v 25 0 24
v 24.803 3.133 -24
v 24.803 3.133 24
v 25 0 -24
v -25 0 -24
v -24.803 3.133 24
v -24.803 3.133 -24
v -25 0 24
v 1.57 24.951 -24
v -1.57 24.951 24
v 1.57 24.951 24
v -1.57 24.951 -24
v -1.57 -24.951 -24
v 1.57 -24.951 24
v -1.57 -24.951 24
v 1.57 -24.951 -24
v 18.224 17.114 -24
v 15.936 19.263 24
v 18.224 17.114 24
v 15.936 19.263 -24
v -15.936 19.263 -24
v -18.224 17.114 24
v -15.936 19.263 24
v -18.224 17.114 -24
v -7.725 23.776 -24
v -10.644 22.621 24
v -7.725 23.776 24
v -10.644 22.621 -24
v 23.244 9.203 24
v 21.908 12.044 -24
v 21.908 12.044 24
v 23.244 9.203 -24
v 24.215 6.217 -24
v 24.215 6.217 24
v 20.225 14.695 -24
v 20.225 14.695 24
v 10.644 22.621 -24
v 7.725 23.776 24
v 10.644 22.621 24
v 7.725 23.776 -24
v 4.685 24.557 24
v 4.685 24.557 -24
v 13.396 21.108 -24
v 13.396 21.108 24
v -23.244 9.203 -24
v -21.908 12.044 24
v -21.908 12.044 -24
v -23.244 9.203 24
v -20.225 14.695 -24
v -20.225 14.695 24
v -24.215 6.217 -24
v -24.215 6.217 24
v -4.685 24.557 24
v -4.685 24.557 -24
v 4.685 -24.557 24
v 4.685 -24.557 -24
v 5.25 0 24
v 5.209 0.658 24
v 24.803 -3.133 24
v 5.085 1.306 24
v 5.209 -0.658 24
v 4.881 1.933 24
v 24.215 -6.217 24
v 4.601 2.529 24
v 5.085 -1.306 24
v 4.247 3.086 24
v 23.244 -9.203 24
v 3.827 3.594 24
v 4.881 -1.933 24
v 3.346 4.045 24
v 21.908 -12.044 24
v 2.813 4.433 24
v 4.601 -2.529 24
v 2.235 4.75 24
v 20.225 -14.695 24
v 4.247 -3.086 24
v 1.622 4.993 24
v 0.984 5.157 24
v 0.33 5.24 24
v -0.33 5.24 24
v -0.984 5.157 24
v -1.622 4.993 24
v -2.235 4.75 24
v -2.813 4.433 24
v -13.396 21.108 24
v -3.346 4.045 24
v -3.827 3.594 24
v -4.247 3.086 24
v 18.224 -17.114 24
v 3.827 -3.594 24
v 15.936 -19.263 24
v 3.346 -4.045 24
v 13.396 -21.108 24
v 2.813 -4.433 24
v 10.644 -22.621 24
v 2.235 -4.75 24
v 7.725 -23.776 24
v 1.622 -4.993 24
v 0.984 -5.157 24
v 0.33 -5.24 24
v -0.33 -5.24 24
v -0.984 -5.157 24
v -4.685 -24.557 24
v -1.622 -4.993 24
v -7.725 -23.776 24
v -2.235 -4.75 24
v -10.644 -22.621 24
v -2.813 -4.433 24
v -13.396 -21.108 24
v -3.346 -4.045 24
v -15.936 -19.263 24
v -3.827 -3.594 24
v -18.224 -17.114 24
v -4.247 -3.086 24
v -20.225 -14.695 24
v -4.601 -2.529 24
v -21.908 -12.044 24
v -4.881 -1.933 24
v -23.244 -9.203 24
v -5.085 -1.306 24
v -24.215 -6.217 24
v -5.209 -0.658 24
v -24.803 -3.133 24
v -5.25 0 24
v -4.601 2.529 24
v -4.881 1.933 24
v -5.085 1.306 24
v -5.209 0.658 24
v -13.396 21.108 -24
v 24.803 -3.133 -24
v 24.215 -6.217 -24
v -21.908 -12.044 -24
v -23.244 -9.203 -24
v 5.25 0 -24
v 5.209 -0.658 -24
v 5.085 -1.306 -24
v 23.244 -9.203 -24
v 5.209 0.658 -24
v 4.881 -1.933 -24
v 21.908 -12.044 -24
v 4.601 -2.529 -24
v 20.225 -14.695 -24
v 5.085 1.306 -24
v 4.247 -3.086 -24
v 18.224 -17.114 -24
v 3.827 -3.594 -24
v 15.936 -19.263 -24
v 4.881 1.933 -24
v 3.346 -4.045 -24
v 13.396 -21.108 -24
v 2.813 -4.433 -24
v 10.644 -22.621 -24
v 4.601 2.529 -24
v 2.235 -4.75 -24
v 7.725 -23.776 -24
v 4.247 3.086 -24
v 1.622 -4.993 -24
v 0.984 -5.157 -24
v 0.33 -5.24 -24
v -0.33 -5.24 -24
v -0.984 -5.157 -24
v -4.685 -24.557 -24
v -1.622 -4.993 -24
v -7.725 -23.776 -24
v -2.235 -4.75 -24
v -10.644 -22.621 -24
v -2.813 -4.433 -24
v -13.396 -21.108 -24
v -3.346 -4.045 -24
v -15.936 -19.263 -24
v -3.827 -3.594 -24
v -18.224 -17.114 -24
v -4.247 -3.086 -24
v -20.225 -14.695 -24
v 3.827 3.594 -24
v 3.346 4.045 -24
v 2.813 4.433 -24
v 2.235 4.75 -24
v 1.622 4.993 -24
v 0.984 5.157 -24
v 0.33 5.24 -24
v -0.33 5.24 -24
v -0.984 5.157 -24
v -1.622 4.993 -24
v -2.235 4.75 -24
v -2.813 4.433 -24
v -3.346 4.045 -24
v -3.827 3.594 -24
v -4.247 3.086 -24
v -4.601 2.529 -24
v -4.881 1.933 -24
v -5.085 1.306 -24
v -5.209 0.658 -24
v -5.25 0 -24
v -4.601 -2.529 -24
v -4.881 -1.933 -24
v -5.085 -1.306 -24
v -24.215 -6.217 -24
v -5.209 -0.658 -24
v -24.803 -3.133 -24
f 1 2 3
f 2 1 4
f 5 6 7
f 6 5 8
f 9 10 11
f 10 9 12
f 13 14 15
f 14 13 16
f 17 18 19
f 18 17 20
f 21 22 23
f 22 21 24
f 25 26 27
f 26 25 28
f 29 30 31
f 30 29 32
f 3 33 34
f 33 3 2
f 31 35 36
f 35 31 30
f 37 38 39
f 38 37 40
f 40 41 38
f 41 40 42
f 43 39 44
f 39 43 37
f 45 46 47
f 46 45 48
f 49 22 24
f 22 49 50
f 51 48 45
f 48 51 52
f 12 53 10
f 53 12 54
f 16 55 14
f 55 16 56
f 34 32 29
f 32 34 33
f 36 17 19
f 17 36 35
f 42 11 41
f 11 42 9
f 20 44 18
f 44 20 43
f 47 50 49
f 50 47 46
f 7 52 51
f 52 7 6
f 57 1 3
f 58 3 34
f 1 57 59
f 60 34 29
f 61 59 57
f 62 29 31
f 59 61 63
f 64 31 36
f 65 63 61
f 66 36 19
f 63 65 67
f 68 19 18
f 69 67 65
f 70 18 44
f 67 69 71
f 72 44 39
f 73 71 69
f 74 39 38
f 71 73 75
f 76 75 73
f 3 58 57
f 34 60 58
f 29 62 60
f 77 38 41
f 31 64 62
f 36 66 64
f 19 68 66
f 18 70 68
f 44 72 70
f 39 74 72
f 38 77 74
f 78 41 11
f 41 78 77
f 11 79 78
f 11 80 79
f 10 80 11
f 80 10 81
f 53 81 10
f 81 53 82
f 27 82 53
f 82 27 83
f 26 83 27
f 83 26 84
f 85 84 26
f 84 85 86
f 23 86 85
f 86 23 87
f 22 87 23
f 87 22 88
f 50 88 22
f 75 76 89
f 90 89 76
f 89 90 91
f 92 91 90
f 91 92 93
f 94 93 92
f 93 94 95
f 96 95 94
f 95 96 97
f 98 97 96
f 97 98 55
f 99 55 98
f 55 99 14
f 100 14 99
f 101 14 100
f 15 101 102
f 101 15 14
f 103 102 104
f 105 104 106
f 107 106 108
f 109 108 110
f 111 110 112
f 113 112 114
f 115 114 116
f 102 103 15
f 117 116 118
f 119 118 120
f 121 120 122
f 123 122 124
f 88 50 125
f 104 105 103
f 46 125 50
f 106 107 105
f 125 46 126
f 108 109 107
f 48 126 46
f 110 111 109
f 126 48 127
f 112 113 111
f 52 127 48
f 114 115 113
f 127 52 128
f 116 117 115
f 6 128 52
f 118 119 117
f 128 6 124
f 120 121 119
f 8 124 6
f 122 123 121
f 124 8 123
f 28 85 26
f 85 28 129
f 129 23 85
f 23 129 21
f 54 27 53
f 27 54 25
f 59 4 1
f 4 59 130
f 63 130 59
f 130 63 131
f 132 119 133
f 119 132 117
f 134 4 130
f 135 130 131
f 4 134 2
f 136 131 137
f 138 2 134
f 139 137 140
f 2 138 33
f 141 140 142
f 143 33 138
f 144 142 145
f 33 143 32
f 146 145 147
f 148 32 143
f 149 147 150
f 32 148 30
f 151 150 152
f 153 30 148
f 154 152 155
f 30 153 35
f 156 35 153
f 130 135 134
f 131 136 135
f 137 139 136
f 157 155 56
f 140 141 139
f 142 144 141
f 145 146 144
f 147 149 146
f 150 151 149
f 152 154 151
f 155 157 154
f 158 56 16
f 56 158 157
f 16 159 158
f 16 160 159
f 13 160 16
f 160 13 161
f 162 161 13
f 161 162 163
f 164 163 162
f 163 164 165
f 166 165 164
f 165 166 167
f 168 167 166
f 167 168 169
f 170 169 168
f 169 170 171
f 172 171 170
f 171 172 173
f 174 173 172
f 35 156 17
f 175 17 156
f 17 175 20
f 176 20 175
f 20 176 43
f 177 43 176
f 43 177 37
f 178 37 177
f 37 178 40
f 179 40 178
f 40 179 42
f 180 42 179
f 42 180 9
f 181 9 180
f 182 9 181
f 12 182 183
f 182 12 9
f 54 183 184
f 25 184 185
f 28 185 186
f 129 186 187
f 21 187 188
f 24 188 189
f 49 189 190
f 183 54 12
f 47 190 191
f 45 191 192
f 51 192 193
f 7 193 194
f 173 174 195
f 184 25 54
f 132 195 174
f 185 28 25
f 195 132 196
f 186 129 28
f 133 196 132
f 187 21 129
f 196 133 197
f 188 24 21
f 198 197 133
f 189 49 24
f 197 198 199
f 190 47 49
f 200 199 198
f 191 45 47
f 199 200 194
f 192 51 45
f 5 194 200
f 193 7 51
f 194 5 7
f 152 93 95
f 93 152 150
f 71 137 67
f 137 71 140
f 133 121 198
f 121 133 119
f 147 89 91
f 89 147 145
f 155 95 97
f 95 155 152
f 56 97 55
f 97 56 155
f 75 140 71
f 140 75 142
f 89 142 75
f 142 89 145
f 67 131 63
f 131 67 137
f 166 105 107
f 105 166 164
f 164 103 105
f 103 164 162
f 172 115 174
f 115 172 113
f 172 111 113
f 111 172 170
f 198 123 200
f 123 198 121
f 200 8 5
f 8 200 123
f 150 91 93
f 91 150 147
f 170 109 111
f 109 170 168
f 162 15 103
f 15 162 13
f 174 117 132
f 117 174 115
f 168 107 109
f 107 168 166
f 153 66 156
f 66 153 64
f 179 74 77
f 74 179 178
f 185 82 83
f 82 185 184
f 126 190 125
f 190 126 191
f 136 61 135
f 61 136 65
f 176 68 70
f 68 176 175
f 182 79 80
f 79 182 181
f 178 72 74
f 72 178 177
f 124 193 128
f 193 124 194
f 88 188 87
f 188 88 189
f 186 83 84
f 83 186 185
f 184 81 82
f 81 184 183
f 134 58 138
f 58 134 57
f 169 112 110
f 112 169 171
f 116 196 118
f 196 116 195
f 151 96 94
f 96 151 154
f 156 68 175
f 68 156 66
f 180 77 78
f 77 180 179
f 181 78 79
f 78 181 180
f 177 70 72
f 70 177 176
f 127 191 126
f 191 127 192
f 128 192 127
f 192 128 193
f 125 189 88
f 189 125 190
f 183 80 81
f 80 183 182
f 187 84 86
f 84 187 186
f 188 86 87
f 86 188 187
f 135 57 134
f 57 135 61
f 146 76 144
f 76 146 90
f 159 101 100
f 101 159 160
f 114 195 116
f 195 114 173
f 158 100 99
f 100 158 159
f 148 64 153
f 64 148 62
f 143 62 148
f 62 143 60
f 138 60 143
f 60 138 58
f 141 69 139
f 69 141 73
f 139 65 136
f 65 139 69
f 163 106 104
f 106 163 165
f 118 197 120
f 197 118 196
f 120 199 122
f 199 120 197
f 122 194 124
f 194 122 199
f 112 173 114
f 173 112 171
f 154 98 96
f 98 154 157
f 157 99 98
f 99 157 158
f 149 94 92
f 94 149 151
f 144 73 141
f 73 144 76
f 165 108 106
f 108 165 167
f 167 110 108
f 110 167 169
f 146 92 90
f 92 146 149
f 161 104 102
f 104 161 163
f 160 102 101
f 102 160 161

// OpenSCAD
$fn = 50;


difference() {
	union() {
		translate(v = [0, 0, -24.0000000000]) {
			cylinder(h = 48, r = 25.0000000000);
		}
	}
	union() {
		translate(v = [0, 0, -100.0000000000]) {
			cylinder(h = 200, r = 5.2500000000);
		}
	}
}
